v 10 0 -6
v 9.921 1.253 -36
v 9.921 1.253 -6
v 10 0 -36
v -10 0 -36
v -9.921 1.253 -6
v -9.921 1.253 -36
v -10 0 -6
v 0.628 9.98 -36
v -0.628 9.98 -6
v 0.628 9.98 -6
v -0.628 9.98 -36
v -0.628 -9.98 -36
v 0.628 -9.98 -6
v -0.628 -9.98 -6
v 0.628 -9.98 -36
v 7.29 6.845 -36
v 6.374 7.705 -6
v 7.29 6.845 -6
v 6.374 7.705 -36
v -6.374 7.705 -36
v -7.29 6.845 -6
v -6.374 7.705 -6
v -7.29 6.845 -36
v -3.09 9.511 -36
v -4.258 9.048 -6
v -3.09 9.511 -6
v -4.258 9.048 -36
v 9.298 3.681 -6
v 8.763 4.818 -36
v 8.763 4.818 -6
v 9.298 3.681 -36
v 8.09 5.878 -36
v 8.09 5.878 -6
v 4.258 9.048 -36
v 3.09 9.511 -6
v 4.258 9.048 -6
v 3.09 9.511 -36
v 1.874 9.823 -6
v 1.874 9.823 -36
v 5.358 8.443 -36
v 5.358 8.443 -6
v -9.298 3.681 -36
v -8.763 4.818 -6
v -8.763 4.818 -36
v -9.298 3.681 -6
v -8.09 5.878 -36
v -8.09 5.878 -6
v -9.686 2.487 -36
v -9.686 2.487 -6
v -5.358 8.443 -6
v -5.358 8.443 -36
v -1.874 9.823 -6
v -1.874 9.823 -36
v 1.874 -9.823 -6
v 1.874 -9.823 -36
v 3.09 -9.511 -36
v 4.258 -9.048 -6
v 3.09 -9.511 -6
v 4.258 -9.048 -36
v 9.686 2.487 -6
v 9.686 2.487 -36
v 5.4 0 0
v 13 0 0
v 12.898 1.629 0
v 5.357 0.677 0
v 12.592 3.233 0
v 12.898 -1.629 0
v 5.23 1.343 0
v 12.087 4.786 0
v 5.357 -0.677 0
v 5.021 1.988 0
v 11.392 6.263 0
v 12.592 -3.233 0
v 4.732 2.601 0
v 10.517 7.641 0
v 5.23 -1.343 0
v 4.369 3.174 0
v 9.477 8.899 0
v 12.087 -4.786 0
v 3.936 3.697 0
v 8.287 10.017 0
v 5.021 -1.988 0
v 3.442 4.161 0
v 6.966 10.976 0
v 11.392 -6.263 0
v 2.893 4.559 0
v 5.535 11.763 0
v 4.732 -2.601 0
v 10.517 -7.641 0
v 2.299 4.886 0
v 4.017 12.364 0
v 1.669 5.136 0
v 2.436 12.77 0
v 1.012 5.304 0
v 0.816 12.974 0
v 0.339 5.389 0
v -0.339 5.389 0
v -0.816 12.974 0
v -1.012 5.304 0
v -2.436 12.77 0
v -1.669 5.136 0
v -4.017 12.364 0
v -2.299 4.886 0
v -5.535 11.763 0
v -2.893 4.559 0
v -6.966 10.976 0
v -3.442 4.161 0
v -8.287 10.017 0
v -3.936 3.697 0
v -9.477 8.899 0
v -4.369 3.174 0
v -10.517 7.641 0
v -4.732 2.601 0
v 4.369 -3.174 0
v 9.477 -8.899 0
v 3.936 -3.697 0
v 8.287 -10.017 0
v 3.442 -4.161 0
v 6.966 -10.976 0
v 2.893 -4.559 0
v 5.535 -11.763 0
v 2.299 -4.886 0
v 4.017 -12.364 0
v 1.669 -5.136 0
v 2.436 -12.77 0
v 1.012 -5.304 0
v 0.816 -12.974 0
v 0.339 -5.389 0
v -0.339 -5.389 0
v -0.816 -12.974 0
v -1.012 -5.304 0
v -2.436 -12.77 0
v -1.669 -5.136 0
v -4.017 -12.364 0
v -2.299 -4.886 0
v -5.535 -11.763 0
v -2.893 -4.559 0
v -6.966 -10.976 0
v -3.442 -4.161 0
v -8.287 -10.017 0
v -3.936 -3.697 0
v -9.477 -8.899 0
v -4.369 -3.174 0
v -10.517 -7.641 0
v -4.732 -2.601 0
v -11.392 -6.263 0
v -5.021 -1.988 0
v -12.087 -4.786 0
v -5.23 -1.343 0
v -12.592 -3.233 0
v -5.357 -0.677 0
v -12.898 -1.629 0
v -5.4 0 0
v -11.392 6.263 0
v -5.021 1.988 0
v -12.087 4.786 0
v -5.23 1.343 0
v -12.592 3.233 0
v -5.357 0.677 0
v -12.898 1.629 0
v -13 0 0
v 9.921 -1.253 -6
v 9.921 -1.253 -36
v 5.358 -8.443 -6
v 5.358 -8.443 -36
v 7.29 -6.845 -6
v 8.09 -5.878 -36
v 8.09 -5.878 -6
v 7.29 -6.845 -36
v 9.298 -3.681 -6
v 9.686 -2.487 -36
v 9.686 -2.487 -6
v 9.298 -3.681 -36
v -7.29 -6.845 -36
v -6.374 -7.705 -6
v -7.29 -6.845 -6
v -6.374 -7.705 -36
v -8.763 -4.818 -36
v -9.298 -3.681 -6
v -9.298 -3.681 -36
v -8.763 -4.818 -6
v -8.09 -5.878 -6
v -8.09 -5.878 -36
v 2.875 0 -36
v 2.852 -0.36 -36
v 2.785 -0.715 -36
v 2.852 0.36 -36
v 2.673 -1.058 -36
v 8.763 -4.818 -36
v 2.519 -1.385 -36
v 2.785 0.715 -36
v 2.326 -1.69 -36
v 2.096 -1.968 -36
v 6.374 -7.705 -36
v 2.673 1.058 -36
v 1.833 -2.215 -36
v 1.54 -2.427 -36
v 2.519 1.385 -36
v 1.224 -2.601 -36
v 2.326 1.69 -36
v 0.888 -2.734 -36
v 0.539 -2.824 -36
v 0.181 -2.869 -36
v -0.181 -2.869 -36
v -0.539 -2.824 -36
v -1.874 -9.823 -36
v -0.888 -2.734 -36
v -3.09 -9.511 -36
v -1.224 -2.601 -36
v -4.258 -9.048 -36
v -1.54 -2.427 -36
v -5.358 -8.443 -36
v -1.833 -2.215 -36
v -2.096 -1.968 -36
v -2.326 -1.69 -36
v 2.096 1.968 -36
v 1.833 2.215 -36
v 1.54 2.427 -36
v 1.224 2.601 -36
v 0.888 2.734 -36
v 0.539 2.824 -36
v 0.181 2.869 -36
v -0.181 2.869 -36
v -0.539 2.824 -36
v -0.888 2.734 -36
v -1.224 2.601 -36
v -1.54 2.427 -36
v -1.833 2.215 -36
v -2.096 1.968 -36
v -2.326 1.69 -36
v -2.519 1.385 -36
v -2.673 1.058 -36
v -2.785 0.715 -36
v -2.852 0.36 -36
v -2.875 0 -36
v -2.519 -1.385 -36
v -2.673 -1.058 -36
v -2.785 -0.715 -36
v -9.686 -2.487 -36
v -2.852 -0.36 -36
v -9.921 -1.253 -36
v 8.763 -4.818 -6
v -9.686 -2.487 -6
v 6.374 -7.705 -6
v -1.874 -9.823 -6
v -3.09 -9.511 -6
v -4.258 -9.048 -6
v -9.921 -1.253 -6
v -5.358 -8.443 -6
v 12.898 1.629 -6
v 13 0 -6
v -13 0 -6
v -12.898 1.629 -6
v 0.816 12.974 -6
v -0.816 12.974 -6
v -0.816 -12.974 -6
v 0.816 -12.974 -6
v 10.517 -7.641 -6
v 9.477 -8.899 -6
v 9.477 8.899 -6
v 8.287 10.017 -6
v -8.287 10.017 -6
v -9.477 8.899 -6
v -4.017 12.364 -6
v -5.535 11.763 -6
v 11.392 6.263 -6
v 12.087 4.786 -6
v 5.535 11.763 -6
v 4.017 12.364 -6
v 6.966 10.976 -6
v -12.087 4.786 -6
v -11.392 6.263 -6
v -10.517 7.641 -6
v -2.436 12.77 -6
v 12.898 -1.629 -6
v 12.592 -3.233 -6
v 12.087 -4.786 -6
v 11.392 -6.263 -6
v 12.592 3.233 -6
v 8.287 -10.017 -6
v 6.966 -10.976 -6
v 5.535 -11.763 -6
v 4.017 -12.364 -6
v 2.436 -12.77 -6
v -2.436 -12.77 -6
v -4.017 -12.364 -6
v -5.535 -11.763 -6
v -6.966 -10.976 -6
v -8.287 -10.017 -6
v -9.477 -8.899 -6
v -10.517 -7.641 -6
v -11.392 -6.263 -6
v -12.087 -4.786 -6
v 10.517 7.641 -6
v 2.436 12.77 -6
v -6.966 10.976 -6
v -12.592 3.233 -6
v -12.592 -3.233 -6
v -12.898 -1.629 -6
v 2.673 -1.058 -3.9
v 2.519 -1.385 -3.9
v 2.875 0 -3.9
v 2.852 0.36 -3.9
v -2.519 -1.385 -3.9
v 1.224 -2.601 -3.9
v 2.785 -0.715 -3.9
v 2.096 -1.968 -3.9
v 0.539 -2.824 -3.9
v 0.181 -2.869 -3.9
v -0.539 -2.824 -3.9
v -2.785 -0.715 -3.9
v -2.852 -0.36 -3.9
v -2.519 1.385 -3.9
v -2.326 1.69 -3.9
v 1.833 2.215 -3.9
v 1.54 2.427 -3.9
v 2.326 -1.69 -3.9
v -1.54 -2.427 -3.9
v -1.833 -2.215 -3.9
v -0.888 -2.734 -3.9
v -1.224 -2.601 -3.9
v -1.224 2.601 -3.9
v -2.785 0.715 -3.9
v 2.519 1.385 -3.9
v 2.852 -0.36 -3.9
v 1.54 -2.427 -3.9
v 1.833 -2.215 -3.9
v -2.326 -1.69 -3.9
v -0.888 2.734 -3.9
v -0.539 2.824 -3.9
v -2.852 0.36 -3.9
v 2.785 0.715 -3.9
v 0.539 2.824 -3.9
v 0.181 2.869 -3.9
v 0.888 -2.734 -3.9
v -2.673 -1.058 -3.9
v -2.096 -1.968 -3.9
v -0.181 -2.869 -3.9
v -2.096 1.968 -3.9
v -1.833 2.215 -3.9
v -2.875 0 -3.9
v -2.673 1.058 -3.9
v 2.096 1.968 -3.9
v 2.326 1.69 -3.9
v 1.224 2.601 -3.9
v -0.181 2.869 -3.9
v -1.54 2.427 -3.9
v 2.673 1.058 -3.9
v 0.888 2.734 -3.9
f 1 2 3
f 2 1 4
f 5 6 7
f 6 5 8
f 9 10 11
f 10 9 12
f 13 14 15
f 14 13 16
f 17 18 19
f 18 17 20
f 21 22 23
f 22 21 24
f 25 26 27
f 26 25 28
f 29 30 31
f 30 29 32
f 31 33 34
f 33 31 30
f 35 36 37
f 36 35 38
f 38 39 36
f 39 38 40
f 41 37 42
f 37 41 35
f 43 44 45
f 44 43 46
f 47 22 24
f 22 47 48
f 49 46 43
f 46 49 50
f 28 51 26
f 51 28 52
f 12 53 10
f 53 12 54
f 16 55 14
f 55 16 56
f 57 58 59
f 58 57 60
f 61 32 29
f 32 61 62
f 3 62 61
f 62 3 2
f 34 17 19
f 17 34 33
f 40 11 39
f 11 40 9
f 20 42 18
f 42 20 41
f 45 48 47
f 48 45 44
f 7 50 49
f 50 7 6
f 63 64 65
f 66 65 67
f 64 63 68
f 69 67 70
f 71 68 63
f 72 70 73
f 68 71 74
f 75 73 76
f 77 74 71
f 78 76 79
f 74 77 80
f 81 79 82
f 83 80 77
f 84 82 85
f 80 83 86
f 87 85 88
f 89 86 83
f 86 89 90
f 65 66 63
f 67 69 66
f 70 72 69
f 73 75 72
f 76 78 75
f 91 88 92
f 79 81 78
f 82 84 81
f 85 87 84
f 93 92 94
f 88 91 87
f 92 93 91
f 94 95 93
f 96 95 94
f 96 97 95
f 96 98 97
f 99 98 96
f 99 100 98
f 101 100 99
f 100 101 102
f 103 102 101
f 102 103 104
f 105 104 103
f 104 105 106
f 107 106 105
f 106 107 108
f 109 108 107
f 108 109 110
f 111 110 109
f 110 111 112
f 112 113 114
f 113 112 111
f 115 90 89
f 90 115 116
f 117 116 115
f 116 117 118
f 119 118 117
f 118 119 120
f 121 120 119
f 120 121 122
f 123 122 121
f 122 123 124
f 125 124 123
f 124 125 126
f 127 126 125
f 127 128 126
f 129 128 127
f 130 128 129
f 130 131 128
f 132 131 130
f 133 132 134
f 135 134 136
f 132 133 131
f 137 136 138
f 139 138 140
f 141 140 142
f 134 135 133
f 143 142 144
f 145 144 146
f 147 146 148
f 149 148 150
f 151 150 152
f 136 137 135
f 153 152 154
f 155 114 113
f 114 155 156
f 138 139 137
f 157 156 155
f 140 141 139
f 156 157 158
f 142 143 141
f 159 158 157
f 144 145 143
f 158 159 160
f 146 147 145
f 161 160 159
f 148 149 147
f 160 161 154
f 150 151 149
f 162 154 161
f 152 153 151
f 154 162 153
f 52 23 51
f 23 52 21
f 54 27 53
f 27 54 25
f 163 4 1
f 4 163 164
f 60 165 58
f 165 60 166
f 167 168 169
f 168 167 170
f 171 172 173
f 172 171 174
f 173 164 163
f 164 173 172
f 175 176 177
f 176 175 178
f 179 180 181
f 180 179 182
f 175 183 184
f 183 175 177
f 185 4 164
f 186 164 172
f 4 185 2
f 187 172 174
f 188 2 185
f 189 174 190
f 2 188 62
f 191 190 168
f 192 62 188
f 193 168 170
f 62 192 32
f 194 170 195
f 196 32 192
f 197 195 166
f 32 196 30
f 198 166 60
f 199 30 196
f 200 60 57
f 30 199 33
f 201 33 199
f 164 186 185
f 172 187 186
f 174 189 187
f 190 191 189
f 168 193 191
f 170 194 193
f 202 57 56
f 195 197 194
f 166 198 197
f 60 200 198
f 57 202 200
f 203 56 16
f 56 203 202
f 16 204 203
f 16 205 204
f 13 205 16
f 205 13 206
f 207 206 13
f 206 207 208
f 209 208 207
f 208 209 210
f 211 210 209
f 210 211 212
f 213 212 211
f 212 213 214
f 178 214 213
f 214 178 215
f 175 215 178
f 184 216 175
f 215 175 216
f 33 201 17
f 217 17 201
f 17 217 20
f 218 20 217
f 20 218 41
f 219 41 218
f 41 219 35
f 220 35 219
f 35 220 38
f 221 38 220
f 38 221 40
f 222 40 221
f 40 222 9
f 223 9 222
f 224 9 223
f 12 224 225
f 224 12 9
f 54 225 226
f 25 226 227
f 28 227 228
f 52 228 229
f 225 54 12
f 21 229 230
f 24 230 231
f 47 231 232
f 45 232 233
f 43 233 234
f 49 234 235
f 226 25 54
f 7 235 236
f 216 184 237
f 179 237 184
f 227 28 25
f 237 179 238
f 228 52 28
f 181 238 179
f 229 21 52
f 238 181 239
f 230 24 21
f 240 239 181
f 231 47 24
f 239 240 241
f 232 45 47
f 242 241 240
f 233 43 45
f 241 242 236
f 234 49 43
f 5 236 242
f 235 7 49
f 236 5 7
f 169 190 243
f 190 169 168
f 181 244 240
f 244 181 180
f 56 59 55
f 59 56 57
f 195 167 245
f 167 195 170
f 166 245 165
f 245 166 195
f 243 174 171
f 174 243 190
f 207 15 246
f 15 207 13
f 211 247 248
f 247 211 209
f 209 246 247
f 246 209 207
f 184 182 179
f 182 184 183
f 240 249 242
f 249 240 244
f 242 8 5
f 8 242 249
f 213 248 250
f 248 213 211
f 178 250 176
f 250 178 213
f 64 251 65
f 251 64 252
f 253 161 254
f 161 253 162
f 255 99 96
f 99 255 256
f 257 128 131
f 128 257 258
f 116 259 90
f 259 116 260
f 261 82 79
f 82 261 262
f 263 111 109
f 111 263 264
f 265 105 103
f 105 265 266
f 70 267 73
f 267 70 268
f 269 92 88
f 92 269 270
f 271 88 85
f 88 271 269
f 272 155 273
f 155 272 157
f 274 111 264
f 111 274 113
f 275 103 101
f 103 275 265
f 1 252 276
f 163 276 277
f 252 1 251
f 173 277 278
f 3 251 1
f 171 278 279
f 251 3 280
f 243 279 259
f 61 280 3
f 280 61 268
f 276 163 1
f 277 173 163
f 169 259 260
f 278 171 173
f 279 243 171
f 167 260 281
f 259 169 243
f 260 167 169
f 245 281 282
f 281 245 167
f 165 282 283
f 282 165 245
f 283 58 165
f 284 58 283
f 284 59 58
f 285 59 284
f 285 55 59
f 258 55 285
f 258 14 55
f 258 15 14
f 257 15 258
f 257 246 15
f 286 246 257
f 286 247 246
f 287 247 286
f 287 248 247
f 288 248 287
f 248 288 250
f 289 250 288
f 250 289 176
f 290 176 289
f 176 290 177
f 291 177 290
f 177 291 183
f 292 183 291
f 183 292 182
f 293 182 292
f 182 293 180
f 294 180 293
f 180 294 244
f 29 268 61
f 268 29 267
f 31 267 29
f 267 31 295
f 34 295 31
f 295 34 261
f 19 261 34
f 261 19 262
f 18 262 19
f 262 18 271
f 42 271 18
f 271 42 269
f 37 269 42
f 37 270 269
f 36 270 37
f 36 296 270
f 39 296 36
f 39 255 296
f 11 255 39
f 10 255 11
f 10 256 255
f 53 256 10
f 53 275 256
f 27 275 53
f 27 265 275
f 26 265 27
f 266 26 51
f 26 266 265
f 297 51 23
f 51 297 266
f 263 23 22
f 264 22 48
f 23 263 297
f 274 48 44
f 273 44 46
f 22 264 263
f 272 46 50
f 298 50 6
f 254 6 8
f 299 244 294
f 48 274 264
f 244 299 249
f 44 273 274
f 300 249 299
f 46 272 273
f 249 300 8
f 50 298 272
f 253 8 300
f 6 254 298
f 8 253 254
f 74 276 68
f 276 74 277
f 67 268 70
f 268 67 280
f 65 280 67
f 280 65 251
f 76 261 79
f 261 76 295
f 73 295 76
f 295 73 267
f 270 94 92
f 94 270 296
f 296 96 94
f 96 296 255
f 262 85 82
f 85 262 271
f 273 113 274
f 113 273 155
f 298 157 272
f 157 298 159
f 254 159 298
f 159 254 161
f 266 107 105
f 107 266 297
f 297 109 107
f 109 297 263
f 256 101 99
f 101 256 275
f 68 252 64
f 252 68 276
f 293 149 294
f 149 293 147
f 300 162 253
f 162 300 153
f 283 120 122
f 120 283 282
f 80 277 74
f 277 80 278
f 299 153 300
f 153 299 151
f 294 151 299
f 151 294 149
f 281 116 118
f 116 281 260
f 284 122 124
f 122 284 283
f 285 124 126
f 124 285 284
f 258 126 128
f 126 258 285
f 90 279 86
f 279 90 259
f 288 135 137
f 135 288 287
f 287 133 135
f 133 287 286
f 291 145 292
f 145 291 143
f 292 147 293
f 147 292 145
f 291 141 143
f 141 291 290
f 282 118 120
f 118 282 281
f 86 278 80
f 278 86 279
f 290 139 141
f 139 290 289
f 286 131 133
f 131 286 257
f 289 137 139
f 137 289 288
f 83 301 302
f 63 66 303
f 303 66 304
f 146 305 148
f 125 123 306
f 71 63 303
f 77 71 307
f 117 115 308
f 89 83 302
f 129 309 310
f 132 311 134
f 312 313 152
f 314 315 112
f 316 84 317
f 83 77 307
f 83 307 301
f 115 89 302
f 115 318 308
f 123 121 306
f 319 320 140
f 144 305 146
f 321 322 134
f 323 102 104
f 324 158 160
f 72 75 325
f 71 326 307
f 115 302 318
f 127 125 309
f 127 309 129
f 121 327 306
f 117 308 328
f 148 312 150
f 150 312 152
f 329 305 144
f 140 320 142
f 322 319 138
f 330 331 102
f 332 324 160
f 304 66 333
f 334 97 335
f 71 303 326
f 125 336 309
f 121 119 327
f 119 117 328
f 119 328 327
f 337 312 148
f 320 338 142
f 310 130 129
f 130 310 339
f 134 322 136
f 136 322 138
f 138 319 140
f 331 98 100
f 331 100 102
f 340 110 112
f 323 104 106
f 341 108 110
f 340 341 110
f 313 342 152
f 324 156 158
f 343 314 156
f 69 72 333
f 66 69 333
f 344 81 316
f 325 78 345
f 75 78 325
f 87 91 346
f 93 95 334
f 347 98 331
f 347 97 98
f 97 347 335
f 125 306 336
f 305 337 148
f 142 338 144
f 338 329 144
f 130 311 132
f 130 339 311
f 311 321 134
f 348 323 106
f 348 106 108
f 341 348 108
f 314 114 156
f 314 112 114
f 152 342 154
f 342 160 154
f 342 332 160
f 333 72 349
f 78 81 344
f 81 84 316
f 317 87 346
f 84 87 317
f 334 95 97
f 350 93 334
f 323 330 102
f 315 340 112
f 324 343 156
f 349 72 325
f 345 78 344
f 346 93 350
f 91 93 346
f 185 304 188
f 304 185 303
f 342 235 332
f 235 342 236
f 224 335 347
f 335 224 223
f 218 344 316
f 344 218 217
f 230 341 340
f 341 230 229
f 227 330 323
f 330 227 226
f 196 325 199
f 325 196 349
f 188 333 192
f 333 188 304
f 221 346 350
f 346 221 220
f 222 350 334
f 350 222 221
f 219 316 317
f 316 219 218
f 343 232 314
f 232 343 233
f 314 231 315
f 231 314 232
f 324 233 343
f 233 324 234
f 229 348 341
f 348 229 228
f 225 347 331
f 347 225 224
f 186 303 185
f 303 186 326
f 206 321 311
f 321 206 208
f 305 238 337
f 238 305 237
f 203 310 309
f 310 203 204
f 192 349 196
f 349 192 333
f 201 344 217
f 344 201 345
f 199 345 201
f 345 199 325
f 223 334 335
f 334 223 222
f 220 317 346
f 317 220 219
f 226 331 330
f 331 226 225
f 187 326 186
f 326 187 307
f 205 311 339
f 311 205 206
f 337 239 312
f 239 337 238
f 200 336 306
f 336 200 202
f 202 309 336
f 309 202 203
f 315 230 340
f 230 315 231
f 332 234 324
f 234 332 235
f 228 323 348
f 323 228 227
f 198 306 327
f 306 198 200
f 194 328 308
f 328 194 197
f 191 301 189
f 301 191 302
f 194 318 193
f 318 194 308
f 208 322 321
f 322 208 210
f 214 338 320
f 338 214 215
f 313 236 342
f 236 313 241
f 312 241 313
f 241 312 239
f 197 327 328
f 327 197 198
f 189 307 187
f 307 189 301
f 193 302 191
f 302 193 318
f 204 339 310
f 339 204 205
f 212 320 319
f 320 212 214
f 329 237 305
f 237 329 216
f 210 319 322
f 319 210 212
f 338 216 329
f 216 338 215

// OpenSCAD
$fn = 50;


difference() {
	union() {
		translate(v = [0, 0, -36.0000000000]) {
			cylinder(h = 36, r = 10.0000000000);
		}
		translate(v = [0, 0, -6.0000000000]) {
			cylinder(h = 6, r = 13.0000000000);
		}
	}
	union() {
		translate(v = [0, 0, 0]) {
			rotate(a = [0, 0, 0]) {
				difference() {
					union() {
						#translate(v = [0, 0, -36.0000000000]) {
							cylinder(h = 36, r = 2.6000000000);
						}
						#translate(v = [0, 0, -3.9000000000]) {
							cylinder(h = 3.9000000000, r1 = 2.8750000000, r2 = 5.4000000000);
						}
						#translate(v = [0, 0, -36.0000000000]) {
							cylinder(h = 36, r = 2.8750000000);
						}
						#translate(v = [0, 0, -36.0000000000]) {
							cylinder(h = 36, r = 2.6000000000);
						}
					}
					union();
				}
			}
		}
	}
}
